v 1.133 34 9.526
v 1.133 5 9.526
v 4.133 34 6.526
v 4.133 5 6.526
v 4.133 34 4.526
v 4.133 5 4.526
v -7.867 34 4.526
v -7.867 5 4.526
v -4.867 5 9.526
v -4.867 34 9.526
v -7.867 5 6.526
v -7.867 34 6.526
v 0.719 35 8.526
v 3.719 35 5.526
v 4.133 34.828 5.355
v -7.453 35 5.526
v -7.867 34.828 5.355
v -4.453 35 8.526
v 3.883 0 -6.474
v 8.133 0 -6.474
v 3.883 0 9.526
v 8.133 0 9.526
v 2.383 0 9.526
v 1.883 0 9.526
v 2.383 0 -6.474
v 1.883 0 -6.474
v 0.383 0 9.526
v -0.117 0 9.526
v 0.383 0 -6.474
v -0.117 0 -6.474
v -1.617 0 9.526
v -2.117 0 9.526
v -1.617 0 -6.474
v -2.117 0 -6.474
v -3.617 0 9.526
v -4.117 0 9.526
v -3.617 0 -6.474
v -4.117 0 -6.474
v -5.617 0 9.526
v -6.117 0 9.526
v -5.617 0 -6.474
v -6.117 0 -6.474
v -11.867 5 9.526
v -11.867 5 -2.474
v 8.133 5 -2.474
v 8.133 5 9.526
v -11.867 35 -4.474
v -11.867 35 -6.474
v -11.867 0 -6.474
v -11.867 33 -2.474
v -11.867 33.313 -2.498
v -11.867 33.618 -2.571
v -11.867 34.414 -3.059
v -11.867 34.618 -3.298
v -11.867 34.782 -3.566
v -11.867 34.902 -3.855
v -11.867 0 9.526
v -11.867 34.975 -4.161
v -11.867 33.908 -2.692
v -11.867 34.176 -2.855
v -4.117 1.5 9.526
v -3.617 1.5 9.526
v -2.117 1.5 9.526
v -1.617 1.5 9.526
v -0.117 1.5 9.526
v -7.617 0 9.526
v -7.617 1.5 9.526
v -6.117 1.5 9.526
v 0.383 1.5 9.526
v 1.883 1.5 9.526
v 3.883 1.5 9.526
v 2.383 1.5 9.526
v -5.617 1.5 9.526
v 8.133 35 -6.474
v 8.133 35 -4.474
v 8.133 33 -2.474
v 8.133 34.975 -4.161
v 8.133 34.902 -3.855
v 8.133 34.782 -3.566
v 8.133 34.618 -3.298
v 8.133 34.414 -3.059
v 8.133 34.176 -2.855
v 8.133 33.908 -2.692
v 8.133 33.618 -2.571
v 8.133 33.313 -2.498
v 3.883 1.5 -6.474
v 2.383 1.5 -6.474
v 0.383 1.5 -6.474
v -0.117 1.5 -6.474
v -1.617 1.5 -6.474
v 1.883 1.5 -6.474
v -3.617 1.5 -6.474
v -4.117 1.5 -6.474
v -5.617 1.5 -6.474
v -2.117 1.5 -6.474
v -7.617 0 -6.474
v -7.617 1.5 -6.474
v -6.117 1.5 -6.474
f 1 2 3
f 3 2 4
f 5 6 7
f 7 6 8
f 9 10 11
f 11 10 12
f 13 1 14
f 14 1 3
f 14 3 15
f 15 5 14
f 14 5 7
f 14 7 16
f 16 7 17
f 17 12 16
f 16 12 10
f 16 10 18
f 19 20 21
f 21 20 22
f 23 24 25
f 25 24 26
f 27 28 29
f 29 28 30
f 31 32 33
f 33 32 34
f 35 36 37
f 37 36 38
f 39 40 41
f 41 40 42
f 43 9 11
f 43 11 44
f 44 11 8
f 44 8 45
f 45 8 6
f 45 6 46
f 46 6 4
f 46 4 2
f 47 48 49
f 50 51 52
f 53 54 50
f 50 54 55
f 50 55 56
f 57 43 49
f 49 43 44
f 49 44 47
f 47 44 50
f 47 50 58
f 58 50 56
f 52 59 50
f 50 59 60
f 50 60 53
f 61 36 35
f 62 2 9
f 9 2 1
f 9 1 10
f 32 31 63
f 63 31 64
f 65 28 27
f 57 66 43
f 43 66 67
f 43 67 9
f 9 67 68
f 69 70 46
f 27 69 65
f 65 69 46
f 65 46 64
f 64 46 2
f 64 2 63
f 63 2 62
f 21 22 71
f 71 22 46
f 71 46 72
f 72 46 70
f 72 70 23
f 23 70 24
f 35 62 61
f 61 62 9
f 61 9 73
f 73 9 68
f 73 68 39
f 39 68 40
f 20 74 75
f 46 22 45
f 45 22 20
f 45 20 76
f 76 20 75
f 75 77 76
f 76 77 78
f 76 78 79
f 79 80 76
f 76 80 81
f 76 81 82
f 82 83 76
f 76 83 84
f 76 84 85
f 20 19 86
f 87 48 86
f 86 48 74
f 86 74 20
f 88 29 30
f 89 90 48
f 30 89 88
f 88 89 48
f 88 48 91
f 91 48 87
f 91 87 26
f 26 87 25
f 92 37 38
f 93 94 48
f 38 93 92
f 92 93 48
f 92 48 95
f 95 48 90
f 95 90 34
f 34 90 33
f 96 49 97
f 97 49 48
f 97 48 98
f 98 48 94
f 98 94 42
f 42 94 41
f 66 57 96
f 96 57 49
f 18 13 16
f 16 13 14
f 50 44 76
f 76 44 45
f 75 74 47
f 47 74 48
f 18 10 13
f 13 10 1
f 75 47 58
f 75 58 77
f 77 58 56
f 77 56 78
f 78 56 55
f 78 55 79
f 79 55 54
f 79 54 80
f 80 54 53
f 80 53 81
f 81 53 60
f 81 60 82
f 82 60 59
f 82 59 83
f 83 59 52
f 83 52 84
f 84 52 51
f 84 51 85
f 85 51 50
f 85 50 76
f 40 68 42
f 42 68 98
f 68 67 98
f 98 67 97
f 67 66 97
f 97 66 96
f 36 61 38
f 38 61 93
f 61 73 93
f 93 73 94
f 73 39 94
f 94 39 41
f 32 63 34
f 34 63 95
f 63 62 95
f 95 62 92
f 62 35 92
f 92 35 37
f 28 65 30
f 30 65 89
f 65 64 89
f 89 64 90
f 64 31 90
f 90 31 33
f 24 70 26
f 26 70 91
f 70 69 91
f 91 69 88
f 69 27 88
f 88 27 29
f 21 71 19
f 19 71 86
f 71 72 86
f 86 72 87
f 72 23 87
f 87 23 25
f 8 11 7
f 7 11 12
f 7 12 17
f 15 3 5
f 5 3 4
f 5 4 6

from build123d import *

# Parameters (mm, degrees)
SKETCH_1_W          = 20
SKETCH_1_H          = 16
EXTRUDE_1_DEPTH     = 5
SKETCH_2_W          = 20
SKETCH_2_H          = 4
EXTRUDE_2_DEPTH     = 30
CHAMFER_1_SIZE      = 1
FILLET_1_R          = 2
SKETCH_3_W          = 1.5
SKETCH_3_H          = 1.5
CUT_EXTRUDE_1_DEPTH = 17
SKETCH_5_W          = 2
SKETCH_5_H          = 2.998083063
SKETCH_5_H_2        = 3.102303799
CUT_EXTRUDE_2_DEPTH = 31


with BuildPart() as part:
    # 草图1 → 凸台-拉伸1 (new body)
    with BuildSketch(Plane(origin=(0, 0, 0), x_dir=(1, 0, 0), z_dir=(0, 1, 0))):
        with Locations((-1.867269937, -1.526468381)):
            Rectangle(SKETCH_1_W, SKETCH_1_H)
    extrude(amount=EXTRUDE_1_DEPTH)

    # 草图2 → 凸台-拉伸2 (add)
    with BuildSketch(Plane(origin=(0, 5, 0), x_dir=(1, 0, 0), z_dir=(0, 1, 0))):
        Polygon((-1.867269937, -9.526468381), (1.132730063, -9.526468381), (6.132730063, -4.526468381), (-1.867269937, -4.526468381), (-9.867269937, -4.526468381), (-4.867269937, -9.526468381), align=None)
        with Locations((-1.867269937, 4.473531619)):
            Rectangle(SKETCH_2_W, SKETCH_2_H)
    extrude(amount=EXTRUDE_2_DEPTH)

    # 倒角1
    chamfer_1_edges = [part.edges().sort_by_distance(p)[0] for p in [
        (-1.867269937, 35, 9.526468381),
        (3.632730063, 35, 7.026468381),
        (-1.867269937, 35, 4.526468381),
        (-7.367269937, 35, 7.026468381),
    ]]
    chamfer(chamfer_1_edges, length=CHAMFER_1_SIZE)

    # 圆角1
    fillet_1_edges = [part.edges().sort_by_distance(p)[0] for p in [
        (-1.867269937, 35, -2.473531619),
    ]]
    fillet(fillet_1_edges, radius=FILLET_1_R)

    # 草图3 → 切除-拉伸1 (cut, through all)
    with BuildSketch(Plane(origin=(0, 0, -6.473531619), x_dir=(-1, 0, 0), z_dir=(0, 0, -1))):
        with Locations((-3.132730063, 0.75)):
            Rectangle(SKETCH_3_W, SKETCH_3_H)
        with Locations((-1.132730063, 0.75)):
            Rectangle(SKETCH_3_W, SKETCH_3_H)
        with Locations((0.867269937, 0.75)):
            Rectangle(SKETCH_3_W, SKETCH_3_H)
        with Locations((2.867269937, 0.75)):
            Rectangle(SKETCH_3_W, SKETCH_3_H)
        with Locations((4.867269937, 0.75)):
            Rectangle(SKETCH_3_W, SKETCH_3_H)
        with Locations((6.867269937, 0.75)):
            Rectangle(SKETCH_3_W, SKETCH_3_H)
    extrude(amount=-CUT_EXTRUDE_1_DEPTH, mode=Mode.SUBTRACT)

    # 草图5 → 切除-拉伸2 (cut, through all)
    with BuildSketch(Plane(origin=(0, 5, 0), x_dir=(1, 0, 0), z_dir=(0, 1, 0))):
        with Locations((-8.867269937, -6.025509913)):
            Rectangle(SKETCH_5_W, SKETCH_5_H)
        with Locations((5.132730063, -6.07762028)):
            Rectangle(SKETCH_5_W, SKETCH_5_H_2)
    extrude(amount=CUT_EXTRUDE_2_DEPTH, mode=Mode.SUBTRACT)


solid = part.part
